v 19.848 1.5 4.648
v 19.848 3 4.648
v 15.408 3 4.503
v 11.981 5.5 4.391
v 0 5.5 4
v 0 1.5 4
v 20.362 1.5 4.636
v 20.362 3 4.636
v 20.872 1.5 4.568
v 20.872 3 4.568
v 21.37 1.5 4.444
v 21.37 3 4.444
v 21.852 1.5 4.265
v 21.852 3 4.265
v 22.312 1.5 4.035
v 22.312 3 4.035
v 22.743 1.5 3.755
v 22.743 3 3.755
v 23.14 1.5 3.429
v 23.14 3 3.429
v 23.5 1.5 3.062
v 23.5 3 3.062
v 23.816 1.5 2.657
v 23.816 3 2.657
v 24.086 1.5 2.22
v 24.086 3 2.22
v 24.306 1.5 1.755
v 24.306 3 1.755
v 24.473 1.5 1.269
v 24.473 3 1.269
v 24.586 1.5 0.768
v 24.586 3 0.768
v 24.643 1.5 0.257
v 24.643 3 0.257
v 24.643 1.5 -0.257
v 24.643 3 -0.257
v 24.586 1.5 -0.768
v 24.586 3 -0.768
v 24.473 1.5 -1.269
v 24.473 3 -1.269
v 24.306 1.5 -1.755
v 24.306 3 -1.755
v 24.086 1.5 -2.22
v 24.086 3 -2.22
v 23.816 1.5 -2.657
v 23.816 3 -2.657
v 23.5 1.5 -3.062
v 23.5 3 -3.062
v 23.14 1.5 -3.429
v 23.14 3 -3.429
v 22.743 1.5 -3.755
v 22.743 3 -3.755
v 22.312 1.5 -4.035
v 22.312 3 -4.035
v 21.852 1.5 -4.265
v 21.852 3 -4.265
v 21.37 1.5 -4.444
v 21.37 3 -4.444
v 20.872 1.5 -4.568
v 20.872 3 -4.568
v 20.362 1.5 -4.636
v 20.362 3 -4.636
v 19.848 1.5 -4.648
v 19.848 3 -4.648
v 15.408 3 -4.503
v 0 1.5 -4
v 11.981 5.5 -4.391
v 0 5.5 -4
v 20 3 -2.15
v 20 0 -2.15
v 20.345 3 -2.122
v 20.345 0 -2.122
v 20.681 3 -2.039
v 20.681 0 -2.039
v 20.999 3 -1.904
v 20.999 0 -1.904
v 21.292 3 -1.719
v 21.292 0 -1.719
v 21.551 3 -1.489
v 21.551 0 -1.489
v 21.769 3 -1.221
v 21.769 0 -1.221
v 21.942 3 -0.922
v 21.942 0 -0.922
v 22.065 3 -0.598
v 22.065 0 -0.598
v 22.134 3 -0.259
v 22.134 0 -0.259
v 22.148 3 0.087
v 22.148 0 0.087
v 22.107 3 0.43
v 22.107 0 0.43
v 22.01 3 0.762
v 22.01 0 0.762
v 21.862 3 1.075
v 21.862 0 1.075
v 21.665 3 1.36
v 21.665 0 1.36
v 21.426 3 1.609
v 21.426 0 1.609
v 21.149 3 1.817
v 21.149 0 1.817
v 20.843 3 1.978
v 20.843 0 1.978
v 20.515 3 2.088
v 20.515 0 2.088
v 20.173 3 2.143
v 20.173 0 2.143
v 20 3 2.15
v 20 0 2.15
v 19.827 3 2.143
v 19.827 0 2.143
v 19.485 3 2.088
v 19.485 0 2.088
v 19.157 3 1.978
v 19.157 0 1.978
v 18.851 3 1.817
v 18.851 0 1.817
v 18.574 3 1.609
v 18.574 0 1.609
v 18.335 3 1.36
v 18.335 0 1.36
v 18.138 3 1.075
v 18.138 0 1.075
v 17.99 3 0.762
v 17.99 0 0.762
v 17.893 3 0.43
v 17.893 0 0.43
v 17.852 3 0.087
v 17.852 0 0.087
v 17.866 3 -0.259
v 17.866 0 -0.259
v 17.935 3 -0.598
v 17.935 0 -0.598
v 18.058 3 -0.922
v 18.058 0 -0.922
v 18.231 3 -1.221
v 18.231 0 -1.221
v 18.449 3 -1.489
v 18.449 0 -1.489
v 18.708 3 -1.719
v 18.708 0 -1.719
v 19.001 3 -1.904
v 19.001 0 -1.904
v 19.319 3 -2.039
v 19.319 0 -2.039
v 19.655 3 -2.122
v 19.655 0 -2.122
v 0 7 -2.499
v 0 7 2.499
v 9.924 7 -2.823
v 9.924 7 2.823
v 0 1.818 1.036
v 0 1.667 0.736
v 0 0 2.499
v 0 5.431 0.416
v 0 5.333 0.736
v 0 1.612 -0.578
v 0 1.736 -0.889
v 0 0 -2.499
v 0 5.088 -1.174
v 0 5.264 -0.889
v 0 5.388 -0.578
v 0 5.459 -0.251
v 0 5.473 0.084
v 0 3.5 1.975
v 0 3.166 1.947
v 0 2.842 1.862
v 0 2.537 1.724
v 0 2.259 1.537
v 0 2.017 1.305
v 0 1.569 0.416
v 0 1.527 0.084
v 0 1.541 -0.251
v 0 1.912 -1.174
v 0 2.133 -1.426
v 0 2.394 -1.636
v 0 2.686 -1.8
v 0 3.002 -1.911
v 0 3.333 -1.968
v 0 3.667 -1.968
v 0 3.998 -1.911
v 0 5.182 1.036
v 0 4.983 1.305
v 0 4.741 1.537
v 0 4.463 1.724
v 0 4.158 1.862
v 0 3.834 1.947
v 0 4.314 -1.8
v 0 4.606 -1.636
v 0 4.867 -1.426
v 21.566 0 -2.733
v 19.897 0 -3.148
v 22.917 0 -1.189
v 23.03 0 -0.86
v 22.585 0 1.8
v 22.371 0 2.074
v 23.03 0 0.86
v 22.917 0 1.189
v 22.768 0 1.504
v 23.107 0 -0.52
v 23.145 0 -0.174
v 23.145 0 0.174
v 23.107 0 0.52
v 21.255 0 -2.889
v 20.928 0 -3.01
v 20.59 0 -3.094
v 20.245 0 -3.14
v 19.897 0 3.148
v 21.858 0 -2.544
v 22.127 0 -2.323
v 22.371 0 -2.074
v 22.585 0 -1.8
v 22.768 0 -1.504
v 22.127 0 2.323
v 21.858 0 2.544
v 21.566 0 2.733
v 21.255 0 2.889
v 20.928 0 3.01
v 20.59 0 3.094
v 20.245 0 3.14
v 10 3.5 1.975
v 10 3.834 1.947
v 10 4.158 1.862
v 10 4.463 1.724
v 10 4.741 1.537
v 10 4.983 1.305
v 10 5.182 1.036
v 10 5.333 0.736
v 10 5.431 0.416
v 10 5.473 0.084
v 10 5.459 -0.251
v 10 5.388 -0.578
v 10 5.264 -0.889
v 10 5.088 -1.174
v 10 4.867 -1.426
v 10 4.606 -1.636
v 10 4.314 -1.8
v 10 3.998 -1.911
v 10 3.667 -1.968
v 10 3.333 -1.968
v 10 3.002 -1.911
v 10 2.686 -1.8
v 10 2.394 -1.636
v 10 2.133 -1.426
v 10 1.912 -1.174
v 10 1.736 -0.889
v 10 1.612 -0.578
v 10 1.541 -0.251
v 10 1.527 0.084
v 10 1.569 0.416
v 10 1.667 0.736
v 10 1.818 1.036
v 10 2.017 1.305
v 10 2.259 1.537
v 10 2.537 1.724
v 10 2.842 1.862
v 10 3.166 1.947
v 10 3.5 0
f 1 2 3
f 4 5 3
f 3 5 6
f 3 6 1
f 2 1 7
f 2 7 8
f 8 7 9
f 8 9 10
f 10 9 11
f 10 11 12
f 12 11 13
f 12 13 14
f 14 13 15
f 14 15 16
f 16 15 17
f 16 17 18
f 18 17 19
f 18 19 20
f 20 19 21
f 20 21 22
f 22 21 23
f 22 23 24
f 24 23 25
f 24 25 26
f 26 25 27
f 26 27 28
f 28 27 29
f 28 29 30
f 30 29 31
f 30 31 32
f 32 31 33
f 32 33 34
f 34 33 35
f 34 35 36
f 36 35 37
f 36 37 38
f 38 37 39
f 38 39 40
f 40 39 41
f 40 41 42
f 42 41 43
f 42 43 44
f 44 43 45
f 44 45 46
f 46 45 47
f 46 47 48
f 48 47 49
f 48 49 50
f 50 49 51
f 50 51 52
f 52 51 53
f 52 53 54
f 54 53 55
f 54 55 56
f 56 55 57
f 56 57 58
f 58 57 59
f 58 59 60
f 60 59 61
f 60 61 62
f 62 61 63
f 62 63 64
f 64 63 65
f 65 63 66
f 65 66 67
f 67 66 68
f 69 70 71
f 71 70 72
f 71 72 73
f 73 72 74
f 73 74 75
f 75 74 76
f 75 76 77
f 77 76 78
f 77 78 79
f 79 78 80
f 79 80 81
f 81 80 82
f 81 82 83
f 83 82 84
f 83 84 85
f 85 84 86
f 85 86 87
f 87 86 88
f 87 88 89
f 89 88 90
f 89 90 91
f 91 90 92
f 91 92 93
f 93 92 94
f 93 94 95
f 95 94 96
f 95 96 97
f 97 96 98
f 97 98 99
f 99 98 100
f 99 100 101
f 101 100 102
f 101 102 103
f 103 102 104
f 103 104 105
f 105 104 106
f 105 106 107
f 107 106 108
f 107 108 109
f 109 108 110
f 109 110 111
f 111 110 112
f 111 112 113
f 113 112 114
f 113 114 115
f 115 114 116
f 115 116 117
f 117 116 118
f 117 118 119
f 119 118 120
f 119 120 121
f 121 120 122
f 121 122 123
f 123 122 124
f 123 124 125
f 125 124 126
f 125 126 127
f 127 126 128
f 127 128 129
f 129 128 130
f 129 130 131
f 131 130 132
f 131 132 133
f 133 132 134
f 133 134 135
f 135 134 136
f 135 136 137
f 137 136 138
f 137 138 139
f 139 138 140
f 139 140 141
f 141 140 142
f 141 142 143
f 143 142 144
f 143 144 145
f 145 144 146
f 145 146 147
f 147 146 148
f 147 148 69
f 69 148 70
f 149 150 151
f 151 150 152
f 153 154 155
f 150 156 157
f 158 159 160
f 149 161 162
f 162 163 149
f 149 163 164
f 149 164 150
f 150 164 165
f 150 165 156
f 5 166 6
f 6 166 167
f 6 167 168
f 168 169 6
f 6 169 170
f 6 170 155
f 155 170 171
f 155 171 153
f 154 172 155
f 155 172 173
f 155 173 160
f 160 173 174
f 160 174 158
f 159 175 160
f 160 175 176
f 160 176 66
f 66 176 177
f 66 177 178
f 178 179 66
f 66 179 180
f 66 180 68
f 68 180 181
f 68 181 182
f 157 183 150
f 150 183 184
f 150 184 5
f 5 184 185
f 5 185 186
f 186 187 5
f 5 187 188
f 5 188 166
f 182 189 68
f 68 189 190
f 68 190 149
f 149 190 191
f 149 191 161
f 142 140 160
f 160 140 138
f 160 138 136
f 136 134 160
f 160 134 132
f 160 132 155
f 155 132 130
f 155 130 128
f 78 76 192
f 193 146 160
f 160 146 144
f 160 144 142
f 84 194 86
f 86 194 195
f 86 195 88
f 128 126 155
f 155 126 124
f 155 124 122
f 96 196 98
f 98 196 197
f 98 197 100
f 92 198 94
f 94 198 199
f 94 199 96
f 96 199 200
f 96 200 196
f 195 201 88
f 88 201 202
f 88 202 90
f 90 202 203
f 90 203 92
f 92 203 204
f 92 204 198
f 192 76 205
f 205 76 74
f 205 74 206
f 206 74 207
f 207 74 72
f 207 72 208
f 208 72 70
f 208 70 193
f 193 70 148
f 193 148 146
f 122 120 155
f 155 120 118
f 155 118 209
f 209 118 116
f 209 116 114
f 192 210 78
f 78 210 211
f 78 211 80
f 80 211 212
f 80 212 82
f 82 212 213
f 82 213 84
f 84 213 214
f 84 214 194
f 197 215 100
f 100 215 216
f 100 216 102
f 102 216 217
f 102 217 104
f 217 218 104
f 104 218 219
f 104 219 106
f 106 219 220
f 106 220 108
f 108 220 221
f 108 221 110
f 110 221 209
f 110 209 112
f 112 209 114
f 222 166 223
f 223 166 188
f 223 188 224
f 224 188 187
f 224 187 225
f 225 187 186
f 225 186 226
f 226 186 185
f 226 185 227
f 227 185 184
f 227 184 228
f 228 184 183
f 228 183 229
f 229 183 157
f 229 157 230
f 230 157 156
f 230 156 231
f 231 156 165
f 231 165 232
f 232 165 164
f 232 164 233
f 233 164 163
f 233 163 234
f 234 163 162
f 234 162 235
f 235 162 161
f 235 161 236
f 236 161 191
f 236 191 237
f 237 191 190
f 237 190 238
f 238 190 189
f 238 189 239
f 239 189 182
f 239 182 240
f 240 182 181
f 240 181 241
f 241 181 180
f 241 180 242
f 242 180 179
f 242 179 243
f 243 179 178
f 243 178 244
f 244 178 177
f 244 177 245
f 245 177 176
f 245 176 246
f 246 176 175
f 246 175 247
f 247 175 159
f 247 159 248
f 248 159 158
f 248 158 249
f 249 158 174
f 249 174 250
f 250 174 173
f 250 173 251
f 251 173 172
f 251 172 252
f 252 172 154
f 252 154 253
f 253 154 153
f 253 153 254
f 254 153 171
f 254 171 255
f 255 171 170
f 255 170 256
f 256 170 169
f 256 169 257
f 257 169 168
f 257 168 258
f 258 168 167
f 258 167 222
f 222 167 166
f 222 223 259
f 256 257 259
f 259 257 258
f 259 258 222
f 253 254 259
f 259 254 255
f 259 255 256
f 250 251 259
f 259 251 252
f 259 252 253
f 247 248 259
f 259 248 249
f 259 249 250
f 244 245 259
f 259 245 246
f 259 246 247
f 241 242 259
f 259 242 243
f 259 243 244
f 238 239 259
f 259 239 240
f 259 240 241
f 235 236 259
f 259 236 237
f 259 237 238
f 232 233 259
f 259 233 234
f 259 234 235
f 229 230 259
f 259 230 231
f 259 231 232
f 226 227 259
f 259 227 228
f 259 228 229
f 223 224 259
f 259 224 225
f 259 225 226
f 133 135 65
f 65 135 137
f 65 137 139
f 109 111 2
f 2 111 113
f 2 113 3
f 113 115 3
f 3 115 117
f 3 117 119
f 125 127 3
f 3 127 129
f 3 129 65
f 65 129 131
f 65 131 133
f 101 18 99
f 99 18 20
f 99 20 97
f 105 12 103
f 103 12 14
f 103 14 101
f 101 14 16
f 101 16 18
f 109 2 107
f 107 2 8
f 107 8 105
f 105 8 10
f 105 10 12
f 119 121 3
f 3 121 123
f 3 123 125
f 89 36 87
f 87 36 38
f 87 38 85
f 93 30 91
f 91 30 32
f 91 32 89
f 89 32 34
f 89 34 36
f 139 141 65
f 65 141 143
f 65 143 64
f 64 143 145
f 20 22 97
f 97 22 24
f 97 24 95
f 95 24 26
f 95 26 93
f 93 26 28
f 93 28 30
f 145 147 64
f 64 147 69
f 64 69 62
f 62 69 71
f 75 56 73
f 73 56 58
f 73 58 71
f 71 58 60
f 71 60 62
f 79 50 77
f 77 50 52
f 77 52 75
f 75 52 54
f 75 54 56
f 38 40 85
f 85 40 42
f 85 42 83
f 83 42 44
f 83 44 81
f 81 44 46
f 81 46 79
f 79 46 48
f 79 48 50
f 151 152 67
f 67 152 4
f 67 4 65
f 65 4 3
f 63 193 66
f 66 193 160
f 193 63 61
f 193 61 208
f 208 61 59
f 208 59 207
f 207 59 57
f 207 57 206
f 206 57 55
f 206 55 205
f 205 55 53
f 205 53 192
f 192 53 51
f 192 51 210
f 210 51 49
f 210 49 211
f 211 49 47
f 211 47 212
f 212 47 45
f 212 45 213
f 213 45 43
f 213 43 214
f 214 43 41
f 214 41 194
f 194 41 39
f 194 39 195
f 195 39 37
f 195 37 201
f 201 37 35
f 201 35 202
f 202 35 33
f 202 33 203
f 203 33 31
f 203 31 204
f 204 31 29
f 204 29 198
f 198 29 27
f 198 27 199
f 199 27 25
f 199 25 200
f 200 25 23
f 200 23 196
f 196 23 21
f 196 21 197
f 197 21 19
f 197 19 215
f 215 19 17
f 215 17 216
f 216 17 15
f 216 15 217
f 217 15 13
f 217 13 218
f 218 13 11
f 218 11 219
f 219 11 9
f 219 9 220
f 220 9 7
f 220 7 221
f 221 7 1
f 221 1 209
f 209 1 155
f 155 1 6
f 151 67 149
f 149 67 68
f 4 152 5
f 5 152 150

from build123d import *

# Parameters (mm, degrees)
SKETCH8_R               = 2.15
BOSS_EXTRUDE2_DEPTH     = 7
SKETCH9_R               = 1.975
CUT_EXTRUDE5_DEPTH      = 10
CUT_EXTRUDE6_DEPTH      = 10
CUT_EXTRUDE6_DEPTH_BACK = 10
CHAMFER1_SIZE           = 1.5


with BuildPart() as part:
    # Sketch8 → Boss-Extrude2 (new body)
    with BuildSketch(Plane(origin=(0, 0, 0), x_dir=(1, 0, 0), z_dir=(0, 1, 0))):
        with BuildLine():
            Line((0, 4), (0, -4))
            Line((0, -4), (19.848380493, -4.647527464))
            ThreePointArc((19.848380493, -4.647527464), (24.65, 0), (19.848380493, 4.647527464))
            Line((19.848380493, 4.647527464), (0, 4))
        make_face()
        with Locations((20, 0)):
            Circle(SKETCH8_R, mode=Mode.SUBTRACT)
    extrude(amount=BOSS_EXTRUDE2_DEPTH)

    # Sketch9 → Cut-Extrude5 (cut)
    with BuildSketch(Plane.ZY):
        with Locations((0, 3.5)):
            Circle(SKETCH9_R)
    extrude(amount=-CUT_EXTRUDE5_DEPTH, mode=Mode.SUBTRACT)

    # Sketch10 → Cut-Extrude6 (cut, two sides: drawn at the far end of the back side and taken through both)
    with BuildSketch(Plane.XY.offset(-CUT_EXTRUDE6_DEPTH_BACK)):
        Polygon((9.924190246, 7), (15.408042822, 3), (24.65, 3), (24.65, 7), align=None)
    extrude(amount=CUT_EXTRUDE6_DEPTH + CUT_EXTRUDE6_DEPTH_BACK, mode=Mode.SUBTRACT)

    # Chamfer1
    chamfer1_edges = [part.edges().sort_by_distance(p)[0] for p in [
        (9.924190246, 0, 4.323763732),
        (24.65, 0, 0),
        (9.924190246, 0, -4.323763732),
        (4.962095123, 7, -4.161881866),
        (4.962095123, 7, 4.161881866),
    ]]
    chamfer(chamfer1_edges, length=CHAMFER1_SIZE)


solid = part.part
